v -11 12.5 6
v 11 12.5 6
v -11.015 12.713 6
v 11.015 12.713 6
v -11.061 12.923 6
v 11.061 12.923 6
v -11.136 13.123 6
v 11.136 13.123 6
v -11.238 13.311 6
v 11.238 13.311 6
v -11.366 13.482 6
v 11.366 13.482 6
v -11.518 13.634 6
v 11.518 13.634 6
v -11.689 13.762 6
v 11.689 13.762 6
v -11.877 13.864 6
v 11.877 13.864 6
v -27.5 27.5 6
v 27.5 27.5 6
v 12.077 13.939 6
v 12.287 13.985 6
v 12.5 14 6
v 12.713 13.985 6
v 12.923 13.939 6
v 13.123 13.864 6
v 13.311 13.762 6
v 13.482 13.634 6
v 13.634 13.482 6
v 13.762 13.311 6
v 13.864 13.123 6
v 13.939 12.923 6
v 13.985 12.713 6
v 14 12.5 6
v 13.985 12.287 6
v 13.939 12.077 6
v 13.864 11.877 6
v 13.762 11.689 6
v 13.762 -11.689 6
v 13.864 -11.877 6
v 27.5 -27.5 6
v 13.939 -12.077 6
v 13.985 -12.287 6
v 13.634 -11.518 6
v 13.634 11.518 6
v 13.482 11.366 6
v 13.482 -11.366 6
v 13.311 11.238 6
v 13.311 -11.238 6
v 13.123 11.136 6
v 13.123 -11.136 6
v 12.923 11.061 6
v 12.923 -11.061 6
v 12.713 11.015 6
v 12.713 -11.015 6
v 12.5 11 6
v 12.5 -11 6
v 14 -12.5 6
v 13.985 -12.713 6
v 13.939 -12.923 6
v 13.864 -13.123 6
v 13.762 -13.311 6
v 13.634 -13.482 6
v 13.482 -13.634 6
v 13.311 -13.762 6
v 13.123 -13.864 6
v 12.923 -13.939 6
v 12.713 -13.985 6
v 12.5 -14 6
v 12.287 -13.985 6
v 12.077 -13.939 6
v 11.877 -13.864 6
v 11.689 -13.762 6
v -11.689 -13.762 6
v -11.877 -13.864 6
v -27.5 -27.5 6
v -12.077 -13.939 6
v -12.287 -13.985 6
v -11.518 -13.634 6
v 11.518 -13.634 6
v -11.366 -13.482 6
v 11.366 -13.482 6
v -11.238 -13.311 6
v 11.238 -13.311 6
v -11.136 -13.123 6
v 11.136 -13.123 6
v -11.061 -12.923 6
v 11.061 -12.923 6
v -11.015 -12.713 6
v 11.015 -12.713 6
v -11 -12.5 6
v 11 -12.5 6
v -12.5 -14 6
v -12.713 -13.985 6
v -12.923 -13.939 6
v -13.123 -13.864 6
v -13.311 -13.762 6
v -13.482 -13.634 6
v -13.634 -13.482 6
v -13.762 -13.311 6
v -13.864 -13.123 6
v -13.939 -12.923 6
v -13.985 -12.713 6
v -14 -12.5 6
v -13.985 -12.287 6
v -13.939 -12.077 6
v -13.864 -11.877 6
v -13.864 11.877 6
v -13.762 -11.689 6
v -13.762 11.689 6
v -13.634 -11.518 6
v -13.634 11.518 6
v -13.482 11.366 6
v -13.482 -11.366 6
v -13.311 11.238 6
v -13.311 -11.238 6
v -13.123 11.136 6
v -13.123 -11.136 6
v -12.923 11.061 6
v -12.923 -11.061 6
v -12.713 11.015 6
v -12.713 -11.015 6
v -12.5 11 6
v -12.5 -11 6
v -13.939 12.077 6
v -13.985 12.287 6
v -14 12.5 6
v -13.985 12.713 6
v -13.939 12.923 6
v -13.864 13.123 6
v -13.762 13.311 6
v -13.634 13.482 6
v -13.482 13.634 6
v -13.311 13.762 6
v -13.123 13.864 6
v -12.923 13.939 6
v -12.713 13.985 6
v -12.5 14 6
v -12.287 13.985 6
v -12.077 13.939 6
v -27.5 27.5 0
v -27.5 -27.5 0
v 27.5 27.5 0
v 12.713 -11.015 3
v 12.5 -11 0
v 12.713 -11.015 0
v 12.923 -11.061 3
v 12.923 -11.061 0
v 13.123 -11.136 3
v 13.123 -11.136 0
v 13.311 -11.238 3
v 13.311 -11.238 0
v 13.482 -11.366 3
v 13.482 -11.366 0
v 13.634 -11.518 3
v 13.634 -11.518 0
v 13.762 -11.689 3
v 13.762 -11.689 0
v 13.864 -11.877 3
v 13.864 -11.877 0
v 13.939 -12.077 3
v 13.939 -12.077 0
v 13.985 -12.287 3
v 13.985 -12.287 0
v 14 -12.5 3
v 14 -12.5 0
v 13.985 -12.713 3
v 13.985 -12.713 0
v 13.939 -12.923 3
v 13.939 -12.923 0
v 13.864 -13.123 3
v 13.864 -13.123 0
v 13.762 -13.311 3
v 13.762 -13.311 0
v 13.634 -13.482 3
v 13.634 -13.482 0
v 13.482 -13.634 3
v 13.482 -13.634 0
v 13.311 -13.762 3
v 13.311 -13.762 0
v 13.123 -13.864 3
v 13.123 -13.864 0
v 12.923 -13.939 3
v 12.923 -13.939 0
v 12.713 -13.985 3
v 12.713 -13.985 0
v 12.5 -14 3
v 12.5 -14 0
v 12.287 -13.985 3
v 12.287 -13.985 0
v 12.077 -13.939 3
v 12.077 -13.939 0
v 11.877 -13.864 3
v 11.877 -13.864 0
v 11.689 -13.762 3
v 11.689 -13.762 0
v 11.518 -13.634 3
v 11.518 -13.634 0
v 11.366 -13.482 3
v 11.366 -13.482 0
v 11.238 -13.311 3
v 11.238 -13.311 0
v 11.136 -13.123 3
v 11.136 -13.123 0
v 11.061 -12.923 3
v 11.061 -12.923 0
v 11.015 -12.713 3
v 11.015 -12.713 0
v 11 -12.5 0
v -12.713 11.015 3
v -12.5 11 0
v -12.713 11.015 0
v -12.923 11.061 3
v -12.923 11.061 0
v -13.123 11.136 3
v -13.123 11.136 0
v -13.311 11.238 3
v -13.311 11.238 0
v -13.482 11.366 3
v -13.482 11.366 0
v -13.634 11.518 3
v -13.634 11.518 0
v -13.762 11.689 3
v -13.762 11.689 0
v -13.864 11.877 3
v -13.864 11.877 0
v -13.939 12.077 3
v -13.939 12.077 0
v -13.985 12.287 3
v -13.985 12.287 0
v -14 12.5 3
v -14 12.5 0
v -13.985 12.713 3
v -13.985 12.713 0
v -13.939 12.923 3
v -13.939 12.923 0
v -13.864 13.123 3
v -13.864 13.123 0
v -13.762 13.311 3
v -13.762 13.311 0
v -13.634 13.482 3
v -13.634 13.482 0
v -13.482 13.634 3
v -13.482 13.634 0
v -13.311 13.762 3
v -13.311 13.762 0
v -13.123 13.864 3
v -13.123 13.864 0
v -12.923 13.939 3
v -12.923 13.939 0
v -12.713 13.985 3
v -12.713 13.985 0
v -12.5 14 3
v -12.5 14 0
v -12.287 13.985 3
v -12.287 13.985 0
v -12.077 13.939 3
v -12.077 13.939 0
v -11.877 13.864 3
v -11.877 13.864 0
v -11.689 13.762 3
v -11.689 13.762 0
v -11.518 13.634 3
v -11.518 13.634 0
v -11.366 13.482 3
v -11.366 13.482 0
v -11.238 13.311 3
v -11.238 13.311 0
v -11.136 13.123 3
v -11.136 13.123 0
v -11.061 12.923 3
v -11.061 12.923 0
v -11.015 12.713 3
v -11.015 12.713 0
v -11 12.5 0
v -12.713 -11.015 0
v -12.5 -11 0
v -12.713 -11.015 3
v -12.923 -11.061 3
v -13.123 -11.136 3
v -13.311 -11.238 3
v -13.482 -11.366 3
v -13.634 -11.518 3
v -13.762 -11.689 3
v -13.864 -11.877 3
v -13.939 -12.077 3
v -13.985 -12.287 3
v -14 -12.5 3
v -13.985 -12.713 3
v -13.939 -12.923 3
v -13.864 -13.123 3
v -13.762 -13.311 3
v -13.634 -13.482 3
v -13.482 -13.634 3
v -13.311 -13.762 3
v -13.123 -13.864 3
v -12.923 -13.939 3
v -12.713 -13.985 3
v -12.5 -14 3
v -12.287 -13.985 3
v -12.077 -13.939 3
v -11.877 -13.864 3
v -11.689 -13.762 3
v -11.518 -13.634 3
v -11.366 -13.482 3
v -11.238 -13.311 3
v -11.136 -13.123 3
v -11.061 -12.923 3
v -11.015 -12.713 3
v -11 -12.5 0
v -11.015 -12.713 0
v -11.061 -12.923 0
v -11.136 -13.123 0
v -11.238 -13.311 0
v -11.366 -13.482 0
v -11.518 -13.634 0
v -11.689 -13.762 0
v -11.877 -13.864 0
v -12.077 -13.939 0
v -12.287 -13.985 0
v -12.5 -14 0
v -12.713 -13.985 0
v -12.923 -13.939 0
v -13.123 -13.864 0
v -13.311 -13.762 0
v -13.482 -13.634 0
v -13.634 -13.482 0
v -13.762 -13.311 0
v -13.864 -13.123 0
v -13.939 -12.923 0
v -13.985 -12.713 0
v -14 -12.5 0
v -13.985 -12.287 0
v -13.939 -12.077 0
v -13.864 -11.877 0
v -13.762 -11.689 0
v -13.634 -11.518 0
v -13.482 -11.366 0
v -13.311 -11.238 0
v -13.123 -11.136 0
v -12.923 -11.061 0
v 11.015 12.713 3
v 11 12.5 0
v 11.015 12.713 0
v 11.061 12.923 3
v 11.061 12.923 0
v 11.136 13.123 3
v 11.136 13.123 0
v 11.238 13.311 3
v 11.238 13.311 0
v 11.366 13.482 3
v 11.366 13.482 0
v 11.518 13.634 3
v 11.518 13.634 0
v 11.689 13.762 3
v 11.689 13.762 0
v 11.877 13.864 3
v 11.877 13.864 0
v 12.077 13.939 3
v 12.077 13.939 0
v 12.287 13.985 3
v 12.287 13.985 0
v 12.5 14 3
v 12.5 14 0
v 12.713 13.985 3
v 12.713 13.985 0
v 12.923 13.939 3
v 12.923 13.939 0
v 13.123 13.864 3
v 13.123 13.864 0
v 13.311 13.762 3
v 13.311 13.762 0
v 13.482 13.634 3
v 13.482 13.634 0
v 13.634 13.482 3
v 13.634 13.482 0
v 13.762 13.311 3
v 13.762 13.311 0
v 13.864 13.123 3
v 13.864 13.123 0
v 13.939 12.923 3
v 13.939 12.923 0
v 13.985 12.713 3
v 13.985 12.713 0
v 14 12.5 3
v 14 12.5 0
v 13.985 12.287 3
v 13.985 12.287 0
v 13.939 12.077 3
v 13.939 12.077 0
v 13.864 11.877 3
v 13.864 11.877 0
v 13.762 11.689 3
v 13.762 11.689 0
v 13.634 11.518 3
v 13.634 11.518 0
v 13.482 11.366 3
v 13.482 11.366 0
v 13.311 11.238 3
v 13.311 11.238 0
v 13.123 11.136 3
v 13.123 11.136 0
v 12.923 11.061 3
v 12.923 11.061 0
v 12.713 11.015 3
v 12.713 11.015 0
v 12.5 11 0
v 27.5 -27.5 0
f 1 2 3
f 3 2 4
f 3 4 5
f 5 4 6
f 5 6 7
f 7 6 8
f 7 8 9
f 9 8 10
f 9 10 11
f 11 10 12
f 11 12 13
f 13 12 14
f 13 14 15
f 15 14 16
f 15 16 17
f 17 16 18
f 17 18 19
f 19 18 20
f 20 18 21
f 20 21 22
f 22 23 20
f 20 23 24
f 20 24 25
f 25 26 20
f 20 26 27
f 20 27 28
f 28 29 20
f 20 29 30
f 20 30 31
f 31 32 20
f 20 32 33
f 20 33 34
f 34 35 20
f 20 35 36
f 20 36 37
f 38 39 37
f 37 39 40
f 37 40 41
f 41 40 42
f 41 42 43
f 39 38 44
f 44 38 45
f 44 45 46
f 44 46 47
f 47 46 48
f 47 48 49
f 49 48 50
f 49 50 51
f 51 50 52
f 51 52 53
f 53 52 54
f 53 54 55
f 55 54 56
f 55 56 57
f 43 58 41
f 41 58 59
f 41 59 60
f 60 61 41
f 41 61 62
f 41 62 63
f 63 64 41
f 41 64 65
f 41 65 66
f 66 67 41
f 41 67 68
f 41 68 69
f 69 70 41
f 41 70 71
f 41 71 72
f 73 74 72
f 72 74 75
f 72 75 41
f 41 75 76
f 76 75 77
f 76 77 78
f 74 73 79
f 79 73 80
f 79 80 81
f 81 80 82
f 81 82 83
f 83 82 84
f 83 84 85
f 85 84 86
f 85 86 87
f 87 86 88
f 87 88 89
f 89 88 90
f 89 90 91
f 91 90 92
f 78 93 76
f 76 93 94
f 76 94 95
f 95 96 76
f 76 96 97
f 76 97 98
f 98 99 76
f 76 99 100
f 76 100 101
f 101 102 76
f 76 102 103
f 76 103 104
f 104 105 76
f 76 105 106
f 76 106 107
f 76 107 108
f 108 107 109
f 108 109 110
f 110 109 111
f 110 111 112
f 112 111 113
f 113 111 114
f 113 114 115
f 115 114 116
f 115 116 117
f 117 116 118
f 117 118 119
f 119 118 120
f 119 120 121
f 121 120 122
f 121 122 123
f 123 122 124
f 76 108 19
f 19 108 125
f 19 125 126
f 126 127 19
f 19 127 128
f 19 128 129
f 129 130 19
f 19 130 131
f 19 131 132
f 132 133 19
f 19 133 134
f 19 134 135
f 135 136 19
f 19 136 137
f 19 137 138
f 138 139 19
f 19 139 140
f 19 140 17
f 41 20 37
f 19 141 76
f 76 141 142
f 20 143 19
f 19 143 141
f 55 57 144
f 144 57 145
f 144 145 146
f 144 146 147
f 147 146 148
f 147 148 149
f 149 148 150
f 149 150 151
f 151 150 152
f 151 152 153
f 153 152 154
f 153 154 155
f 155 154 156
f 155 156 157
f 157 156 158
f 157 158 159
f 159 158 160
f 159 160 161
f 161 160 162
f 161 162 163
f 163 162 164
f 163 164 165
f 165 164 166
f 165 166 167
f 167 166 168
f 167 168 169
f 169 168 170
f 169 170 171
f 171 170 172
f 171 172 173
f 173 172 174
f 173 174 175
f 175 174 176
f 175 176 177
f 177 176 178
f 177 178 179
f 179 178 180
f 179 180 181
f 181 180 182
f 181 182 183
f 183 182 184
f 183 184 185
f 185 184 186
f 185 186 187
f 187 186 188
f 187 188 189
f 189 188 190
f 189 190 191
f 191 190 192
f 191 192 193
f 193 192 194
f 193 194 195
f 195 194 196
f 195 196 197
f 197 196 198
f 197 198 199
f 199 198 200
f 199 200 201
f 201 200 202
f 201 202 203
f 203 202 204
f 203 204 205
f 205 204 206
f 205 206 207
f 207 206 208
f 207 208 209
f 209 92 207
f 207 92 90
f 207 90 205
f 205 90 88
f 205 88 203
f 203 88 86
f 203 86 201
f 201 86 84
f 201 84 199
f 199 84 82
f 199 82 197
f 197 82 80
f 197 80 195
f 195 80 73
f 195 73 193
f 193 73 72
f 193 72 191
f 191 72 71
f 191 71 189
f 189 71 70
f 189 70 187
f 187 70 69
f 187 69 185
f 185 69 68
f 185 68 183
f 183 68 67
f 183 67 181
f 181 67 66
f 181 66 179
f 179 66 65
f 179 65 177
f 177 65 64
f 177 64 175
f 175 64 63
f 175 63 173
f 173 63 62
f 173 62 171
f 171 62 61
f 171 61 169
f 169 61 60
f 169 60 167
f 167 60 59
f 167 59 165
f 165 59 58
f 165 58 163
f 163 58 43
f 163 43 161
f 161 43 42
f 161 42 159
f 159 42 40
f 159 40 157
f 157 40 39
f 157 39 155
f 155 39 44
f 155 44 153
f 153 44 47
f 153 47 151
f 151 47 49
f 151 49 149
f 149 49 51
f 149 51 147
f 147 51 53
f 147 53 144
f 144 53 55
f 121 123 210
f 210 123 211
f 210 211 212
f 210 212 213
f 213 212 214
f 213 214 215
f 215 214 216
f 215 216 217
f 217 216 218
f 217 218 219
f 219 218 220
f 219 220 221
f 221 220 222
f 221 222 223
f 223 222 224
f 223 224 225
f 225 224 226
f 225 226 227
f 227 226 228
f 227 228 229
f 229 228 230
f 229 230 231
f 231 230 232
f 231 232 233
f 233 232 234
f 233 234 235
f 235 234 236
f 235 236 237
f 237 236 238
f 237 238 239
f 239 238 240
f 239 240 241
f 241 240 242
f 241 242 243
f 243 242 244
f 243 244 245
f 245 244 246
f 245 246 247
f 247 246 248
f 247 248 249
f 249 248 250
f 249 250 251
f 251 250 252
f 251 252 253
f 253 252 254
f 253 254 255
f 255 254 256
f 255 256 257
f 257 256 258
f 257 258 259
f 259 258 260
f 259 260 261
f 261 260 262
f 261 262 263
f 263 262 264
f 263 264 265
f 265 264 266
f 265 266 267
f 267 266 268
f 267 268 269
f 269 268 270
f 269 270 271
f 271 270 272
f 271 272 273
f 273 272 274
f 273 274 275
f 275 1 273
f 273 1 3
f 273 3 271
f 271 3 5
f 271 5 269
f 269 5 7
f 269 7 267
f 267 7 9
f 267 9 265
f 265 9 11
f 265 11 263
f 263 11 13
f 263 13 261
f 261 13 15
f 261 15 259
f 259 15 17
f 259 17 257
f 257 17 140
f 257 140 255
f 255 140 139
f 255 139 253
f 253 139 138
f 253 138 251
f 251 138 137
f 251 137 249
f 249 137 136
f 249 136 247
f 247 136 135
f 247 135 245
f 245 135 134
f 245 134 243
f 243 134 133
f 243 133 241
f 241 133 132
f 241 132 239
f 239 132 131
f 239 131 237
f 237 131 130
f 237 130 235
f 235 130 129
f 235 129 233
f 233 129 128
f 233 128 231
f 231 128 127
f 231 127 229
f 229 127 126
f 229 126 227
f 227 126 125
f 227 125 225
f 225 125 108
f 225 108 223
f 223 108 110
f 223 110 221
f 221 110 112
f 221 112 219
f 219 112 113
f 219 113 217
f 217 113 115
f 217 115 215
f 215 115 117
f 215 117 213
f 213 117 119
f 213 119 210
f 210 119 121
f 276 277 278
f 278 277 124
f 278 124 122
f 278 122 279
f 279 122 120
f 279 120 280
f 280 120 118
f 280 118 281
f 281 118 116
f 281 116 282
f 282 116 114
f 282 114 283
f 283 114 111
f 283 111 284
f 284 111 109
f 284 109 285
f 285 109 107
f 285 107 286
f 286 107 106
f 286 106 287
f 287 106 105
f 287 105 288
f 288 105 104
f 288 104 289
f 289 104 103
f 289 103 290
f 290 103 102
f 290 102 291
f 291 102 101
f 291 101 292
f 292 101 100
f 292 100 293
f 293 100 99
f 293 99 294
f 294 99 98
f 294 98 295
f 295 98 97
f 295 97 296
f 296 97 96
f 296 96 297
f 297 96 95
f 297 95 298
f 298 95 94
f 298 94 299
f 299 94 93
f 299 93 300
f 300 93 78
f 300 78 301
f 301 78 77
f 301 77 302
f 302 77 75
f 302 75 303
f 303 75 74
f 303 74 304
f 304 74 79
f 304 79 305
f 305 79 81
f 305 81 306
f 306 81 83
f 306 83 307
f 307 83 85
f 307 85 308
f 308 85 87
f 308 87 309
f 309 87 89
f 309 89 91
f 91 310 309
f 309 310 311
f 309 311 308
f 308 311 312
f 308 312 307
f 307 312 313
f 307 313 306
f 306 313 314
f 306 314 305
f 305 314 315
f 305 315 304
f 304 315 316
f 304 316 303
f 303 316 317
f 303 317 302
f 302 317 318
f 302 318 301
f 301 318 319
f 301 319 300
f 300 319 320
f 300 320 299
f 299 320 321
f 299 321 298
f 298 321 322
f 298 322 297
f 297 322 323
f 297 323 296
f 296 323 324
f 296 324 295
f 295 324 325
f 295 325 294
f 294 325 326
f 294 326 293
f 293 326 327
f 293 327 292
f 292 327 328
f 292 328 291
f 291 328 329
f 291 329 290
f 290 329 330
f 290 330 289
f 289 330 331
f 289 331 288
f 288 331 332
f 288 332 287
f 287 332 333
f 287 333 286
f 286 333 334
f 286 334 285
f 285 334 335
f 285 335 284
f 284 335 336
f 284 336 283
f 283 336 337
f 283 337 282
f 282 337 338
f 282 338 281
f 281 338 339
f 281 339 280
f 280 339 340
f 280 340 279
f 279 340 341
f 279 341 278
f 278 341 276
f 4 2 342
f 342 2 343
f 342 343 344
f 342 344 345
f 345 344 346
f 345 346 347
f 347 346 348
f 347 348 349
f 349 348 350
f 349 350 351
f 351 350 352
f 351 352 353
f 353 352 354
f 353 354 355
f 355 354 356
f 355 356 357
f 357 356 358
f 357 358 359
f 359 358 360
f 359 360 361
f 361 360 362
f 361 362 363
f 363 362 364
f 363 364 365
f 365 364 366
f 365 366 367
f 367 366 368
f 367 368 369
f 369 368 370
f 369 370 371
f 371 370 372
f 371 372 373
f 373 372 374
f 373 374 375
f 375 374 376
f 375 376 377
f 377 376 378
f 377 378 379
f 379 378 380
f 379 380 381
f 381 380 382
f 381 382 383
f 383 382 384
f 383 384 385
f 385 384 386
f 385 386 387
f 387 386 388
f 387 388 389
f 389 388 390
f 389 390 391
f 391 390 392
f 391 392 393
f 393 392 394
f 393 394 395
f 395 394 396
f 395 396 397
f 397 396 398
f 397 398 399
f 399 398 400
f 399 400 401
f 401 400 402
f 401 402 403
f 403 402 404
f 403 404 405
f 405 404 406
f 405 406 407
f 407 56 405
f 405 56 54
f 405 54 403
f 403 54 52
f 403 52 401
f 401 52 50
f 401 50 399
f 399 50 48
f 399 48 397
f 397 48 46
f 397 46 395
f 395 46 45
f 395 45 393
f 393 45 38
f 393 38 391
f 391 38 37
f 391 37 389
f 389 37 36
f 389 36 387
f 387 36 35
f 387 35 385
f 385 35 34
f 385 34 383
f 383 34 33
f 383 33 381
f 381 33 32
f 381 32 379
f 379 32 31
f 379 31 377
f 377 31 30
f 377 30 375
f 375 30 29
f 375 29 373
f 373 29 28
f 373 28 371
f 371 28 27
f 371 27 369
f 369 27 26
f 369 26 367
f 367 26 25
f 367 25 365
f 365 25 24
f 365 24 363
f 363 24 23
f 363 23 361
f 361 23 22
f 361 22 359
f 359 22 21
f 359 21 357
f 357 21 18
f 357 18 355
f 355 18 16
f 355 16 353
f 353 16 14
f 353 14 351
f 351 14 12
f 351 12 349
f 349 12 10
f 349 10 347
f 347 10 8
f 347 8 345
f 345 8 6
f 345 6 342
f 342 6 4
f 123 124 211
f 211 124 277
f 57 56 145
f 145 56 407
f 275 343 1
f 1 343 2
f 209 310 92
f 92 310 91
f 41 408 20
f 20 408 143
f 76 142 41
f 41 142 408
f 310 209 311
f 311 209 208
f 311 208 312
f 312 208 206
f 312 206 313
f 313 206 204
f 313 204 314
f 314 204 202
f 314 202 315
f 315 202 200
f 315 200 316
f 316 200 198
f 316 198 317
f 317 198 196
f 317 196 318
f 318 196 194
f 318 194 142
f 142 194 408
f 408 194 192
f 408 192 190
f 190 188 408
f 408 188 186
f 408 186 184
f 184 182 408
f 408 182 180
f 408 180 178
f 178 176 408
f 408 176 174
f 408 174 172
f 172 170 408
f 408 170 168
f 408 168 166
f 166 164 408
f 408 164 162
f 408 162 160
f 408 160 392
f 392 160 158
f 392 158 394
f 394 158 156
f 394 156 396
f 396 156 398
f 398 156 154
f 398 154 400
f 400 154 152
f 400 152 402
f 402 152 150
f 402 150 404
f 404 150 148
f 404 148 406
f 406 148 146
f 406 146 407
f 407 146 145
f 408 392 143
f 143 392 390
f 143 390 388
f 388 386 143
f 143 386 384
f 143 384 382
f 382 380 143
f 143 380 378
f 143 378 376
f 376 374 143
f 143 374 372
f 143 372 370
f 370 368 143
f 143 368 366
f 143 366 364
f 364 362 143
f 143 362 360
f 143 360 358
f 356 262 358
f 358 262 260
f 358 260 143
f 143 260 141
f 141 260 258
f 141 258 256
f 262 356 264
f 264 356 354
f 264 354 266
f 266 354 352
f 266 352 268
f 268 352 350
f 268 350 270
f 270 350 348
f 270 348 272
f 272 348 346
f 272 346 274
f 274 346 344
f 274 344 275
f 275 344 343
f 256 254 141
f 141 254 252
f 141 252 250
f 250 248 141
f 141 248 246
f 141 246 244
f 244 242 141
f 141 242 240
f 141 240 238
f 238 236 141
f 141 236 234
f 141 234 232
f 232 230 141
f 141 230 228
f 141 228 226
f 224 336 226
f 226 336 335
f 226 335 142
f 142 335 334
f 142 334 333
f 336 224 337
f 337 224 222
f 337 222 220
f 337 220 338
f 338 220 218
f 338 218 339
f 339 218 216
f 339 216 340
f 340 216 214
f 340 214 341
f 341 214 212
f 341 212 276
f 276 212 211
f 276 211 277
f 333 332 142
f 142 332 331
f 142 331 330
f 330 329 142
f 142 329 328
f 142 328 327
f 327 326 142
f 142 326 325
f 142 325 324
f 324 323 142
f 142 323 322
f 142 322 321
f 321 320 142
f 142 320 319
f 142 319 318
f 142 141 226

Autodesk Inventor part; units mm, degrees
ref_plane "YZ Plane" through (0, 0, 0) normal (1, 0, 0) x (0, 1, 0)
ref_plane "XZ Plane" through (0, 0, 0) normal (0, 1, 0) x (-1, 0, 0)
ref_plane "XY Plane" through (0, 0, 0) normal (0, 0, 1) x (1, 0, 0)
sketch "Sketch1" plane through (0, 0, 0) normal (0, 0, 1) x (1, 0, 0)
  line L0 (0, 38.5) -> (0, -38.5) construction
  line L1 (-38.5, 0) -> (38.5, 0) construction
  line L2 (-27.5, 27.5) -> (27.5, 27.5)
  line L3 (27.5, 27.5) -> (27.5, -27.5)
  line L4 (27.5, -27.5) -> (-27.5, -27.5)
  line L5 (-27.5, -27.5) -> (-27.5, 27.5)
  point P0 (0, 0)
  dimension "d0" = 55
  dimension "d1" = 55
extrude "Extrusion1" add sketch "Sketch1" along normal blind 20
sketch "Sketch4" plane through (0, 0, 20) normal (0, 0, 1) x (1, 0, 0)
  line L0 (-38.5, 0) -> (38.5, 0) construction
  line L1 (0, 38.5) -> (0, -38.5) construction
  line L2 (-22.55, 22.55) -> (22.55, 22.55) construction
  line L3 (22.55, 22.55) -> (22.55, -22.55) construction
  line L4 (22.55, -22.55) -> (-22.55, -22.55) construction
  line L5 (-22.55, -22.55) -> (-22.55, 22.55) construction
  point P0 (0, 0)
  dimension "d15" = 45.1
  dimension "d16" = 45.1
hole "Hole2" at (-22.55, 22.55, 20) at (22.55, 22.55, 20) at (22.55, -22.55, 20) at (-22.55, -22.55, 20) at (-22.55, 22.55, 20) at (22.55, 22.55, 20) direction (0, 0, -1) diameter 5 depth 8
sketch "Sketch5" plane through (0, 0, 20) normal (0, 0, 1) x (1, 0, 0)
  circle A0 centre (-22.55, 22.55) radius 2.5 projected
  circle A1 centre (22.55, -22.55) radius 2.5 projected
  line L0 (-22.55, 22.55) -> (22.55, 22.55)
  line L1 (22.55, 22.55) -> (22.55, -22.55)
  line L2 (22.55, -22.55) -> (-22.55, -22.55)
  line L3 (-22.55, -22.55) -> (-22.55, 22.55)
  point P0 (0, 0)
extrude "Extrusion3" cut sketch "Sketch5" against normal blind 8 contours L0 L1 A1 L2 L3 A0 | A0 L3 L0 | L1 L2 A1 picked at (-20.9042, 22.3646) picked at (22.003, -20.9868)
sketch "Sketch6" plane through (-27.5, -27.5, 0) normal (-1, 0, 0) x (0, 0, 1)
  line L0 (0, 55) -> (20, 55) projected
  line L1 (0, 0) -> (20, 0) projected
  line L2 (20, 7.45) -> (12, 7.45) construction
  line L3 (20, 47.55) -> (20, 7.45) construction
  line L4 (12, 47.55) -> (20, 47.55) construction
  line L5 (12, 7.45) -> (12, 47.55) construction
  line L6 (16, 47.55) -> (16, 7.45) construction
  point P0 (0, 27.5)
  point P1 (16, 40)
  point P2 (16, 15)
  dimension "d26" = 15
  dimension "d27" = 15
hole "Hole3" at (-27.5, 12.5, 16) at (-27.5, -12.5, 16) direction (1, 0, 0) diameter 3.242 end up to surface thread size "M4x0.7" class "6H" standard "ANSI Metric M Profile"
sketch "Sketch8" plane through (0, 0, 0) normal (0, 0, -1) x (-1, 0, 0)
  line L0 (27.5, 27.5) -> (-27.5, 27.5) construction
  line L1 (-27.5, 27.5) -> (-27.5, -27.5) construction
  line L2 (-27.5, -27.5) -> (27.5, -27.5) construction
  line L3 (27.5, -27.5) -> (27.5, 27.5) construction
  line L4 (0, -38.5) -> (0, 38.5) construction
  line L5 (-38.5, 0) -> (38.5, 0) construction
  line L6 (-12.5, -12.5) -> (12.5, -12.5)
  line L7 (12.5, -12.5) -> (12.5, 12.5)
  line L8 (12.5, 12.5) -> (-12.5, 12.5)
  line L9 (-12.5, 12.5) -> (-12.5, -12.5)
  point P0 (0, 0)
  dimension "d44" = 25
  dimension "d45" = 25
extrude "Extrusion4" cut sketch "Sketch8" against normal blind 6
sketch "Sketch9" plane through (0, 0, 0) normal (0, 0, -1) x (-1, 0, 0)
  line L0 (12.5, 12.5) -> (12.5, -12.5) construction
  line L1 (12.5, -12.5) -> (-12.5, -12.5) construction
  line L2 (-12.5, -12.5) -> (-12.5, 12.5) construction
  line L3 (-12.5, 12.5) -> (12.5, 12.5) construction
  line L4 (27.5, 27.5) -> (-27.5, 27.5) construction
  line L5 (-27.5, 27.5) -> (-27.5, -27.5) construction
  line L6 (-27.5, -27.5) -> (27.5, -27.5) construction
  line L7 (27.5, -27.5) -> (27.5, 27.5) construction
  line L8 (12.5, -12.5) -> (-12.5, -12.5) construction
  point P0 (0, 0)
hole "Hole5" at (-12.5, 12.5, 0) at (-12.5, -12.5, 0) at (12.5, -12.5, 0) at (12.5, 12.5, 0) direction (0, 0, 1) diameter 3 depth 6
sketch "Sketch10" plane through (0, 0, 6) normal (0, 0, -1) x (-1, 0, 0)
  point P0 (0, 0)
  point P1 (0, 0)
hole "Hole6" at (0, 0, 6) direction (0, 0, 1) diameter 3.242 depth 4 tip angle 118 thread size "M4x0.7" class "6H" standard "ANSI Metric M Profile"
ref_plane "SplitPlane" through (0, 0, 6) normal (0, 0, -1) x (-1, 0, 0)
split "Split3" plane through (0, 0, 6) removes the side toward (0, 0, 1)
properties part number "Large-cuvette-mount-40mm-V4_bottom" material "PC/ABS Plastic"
